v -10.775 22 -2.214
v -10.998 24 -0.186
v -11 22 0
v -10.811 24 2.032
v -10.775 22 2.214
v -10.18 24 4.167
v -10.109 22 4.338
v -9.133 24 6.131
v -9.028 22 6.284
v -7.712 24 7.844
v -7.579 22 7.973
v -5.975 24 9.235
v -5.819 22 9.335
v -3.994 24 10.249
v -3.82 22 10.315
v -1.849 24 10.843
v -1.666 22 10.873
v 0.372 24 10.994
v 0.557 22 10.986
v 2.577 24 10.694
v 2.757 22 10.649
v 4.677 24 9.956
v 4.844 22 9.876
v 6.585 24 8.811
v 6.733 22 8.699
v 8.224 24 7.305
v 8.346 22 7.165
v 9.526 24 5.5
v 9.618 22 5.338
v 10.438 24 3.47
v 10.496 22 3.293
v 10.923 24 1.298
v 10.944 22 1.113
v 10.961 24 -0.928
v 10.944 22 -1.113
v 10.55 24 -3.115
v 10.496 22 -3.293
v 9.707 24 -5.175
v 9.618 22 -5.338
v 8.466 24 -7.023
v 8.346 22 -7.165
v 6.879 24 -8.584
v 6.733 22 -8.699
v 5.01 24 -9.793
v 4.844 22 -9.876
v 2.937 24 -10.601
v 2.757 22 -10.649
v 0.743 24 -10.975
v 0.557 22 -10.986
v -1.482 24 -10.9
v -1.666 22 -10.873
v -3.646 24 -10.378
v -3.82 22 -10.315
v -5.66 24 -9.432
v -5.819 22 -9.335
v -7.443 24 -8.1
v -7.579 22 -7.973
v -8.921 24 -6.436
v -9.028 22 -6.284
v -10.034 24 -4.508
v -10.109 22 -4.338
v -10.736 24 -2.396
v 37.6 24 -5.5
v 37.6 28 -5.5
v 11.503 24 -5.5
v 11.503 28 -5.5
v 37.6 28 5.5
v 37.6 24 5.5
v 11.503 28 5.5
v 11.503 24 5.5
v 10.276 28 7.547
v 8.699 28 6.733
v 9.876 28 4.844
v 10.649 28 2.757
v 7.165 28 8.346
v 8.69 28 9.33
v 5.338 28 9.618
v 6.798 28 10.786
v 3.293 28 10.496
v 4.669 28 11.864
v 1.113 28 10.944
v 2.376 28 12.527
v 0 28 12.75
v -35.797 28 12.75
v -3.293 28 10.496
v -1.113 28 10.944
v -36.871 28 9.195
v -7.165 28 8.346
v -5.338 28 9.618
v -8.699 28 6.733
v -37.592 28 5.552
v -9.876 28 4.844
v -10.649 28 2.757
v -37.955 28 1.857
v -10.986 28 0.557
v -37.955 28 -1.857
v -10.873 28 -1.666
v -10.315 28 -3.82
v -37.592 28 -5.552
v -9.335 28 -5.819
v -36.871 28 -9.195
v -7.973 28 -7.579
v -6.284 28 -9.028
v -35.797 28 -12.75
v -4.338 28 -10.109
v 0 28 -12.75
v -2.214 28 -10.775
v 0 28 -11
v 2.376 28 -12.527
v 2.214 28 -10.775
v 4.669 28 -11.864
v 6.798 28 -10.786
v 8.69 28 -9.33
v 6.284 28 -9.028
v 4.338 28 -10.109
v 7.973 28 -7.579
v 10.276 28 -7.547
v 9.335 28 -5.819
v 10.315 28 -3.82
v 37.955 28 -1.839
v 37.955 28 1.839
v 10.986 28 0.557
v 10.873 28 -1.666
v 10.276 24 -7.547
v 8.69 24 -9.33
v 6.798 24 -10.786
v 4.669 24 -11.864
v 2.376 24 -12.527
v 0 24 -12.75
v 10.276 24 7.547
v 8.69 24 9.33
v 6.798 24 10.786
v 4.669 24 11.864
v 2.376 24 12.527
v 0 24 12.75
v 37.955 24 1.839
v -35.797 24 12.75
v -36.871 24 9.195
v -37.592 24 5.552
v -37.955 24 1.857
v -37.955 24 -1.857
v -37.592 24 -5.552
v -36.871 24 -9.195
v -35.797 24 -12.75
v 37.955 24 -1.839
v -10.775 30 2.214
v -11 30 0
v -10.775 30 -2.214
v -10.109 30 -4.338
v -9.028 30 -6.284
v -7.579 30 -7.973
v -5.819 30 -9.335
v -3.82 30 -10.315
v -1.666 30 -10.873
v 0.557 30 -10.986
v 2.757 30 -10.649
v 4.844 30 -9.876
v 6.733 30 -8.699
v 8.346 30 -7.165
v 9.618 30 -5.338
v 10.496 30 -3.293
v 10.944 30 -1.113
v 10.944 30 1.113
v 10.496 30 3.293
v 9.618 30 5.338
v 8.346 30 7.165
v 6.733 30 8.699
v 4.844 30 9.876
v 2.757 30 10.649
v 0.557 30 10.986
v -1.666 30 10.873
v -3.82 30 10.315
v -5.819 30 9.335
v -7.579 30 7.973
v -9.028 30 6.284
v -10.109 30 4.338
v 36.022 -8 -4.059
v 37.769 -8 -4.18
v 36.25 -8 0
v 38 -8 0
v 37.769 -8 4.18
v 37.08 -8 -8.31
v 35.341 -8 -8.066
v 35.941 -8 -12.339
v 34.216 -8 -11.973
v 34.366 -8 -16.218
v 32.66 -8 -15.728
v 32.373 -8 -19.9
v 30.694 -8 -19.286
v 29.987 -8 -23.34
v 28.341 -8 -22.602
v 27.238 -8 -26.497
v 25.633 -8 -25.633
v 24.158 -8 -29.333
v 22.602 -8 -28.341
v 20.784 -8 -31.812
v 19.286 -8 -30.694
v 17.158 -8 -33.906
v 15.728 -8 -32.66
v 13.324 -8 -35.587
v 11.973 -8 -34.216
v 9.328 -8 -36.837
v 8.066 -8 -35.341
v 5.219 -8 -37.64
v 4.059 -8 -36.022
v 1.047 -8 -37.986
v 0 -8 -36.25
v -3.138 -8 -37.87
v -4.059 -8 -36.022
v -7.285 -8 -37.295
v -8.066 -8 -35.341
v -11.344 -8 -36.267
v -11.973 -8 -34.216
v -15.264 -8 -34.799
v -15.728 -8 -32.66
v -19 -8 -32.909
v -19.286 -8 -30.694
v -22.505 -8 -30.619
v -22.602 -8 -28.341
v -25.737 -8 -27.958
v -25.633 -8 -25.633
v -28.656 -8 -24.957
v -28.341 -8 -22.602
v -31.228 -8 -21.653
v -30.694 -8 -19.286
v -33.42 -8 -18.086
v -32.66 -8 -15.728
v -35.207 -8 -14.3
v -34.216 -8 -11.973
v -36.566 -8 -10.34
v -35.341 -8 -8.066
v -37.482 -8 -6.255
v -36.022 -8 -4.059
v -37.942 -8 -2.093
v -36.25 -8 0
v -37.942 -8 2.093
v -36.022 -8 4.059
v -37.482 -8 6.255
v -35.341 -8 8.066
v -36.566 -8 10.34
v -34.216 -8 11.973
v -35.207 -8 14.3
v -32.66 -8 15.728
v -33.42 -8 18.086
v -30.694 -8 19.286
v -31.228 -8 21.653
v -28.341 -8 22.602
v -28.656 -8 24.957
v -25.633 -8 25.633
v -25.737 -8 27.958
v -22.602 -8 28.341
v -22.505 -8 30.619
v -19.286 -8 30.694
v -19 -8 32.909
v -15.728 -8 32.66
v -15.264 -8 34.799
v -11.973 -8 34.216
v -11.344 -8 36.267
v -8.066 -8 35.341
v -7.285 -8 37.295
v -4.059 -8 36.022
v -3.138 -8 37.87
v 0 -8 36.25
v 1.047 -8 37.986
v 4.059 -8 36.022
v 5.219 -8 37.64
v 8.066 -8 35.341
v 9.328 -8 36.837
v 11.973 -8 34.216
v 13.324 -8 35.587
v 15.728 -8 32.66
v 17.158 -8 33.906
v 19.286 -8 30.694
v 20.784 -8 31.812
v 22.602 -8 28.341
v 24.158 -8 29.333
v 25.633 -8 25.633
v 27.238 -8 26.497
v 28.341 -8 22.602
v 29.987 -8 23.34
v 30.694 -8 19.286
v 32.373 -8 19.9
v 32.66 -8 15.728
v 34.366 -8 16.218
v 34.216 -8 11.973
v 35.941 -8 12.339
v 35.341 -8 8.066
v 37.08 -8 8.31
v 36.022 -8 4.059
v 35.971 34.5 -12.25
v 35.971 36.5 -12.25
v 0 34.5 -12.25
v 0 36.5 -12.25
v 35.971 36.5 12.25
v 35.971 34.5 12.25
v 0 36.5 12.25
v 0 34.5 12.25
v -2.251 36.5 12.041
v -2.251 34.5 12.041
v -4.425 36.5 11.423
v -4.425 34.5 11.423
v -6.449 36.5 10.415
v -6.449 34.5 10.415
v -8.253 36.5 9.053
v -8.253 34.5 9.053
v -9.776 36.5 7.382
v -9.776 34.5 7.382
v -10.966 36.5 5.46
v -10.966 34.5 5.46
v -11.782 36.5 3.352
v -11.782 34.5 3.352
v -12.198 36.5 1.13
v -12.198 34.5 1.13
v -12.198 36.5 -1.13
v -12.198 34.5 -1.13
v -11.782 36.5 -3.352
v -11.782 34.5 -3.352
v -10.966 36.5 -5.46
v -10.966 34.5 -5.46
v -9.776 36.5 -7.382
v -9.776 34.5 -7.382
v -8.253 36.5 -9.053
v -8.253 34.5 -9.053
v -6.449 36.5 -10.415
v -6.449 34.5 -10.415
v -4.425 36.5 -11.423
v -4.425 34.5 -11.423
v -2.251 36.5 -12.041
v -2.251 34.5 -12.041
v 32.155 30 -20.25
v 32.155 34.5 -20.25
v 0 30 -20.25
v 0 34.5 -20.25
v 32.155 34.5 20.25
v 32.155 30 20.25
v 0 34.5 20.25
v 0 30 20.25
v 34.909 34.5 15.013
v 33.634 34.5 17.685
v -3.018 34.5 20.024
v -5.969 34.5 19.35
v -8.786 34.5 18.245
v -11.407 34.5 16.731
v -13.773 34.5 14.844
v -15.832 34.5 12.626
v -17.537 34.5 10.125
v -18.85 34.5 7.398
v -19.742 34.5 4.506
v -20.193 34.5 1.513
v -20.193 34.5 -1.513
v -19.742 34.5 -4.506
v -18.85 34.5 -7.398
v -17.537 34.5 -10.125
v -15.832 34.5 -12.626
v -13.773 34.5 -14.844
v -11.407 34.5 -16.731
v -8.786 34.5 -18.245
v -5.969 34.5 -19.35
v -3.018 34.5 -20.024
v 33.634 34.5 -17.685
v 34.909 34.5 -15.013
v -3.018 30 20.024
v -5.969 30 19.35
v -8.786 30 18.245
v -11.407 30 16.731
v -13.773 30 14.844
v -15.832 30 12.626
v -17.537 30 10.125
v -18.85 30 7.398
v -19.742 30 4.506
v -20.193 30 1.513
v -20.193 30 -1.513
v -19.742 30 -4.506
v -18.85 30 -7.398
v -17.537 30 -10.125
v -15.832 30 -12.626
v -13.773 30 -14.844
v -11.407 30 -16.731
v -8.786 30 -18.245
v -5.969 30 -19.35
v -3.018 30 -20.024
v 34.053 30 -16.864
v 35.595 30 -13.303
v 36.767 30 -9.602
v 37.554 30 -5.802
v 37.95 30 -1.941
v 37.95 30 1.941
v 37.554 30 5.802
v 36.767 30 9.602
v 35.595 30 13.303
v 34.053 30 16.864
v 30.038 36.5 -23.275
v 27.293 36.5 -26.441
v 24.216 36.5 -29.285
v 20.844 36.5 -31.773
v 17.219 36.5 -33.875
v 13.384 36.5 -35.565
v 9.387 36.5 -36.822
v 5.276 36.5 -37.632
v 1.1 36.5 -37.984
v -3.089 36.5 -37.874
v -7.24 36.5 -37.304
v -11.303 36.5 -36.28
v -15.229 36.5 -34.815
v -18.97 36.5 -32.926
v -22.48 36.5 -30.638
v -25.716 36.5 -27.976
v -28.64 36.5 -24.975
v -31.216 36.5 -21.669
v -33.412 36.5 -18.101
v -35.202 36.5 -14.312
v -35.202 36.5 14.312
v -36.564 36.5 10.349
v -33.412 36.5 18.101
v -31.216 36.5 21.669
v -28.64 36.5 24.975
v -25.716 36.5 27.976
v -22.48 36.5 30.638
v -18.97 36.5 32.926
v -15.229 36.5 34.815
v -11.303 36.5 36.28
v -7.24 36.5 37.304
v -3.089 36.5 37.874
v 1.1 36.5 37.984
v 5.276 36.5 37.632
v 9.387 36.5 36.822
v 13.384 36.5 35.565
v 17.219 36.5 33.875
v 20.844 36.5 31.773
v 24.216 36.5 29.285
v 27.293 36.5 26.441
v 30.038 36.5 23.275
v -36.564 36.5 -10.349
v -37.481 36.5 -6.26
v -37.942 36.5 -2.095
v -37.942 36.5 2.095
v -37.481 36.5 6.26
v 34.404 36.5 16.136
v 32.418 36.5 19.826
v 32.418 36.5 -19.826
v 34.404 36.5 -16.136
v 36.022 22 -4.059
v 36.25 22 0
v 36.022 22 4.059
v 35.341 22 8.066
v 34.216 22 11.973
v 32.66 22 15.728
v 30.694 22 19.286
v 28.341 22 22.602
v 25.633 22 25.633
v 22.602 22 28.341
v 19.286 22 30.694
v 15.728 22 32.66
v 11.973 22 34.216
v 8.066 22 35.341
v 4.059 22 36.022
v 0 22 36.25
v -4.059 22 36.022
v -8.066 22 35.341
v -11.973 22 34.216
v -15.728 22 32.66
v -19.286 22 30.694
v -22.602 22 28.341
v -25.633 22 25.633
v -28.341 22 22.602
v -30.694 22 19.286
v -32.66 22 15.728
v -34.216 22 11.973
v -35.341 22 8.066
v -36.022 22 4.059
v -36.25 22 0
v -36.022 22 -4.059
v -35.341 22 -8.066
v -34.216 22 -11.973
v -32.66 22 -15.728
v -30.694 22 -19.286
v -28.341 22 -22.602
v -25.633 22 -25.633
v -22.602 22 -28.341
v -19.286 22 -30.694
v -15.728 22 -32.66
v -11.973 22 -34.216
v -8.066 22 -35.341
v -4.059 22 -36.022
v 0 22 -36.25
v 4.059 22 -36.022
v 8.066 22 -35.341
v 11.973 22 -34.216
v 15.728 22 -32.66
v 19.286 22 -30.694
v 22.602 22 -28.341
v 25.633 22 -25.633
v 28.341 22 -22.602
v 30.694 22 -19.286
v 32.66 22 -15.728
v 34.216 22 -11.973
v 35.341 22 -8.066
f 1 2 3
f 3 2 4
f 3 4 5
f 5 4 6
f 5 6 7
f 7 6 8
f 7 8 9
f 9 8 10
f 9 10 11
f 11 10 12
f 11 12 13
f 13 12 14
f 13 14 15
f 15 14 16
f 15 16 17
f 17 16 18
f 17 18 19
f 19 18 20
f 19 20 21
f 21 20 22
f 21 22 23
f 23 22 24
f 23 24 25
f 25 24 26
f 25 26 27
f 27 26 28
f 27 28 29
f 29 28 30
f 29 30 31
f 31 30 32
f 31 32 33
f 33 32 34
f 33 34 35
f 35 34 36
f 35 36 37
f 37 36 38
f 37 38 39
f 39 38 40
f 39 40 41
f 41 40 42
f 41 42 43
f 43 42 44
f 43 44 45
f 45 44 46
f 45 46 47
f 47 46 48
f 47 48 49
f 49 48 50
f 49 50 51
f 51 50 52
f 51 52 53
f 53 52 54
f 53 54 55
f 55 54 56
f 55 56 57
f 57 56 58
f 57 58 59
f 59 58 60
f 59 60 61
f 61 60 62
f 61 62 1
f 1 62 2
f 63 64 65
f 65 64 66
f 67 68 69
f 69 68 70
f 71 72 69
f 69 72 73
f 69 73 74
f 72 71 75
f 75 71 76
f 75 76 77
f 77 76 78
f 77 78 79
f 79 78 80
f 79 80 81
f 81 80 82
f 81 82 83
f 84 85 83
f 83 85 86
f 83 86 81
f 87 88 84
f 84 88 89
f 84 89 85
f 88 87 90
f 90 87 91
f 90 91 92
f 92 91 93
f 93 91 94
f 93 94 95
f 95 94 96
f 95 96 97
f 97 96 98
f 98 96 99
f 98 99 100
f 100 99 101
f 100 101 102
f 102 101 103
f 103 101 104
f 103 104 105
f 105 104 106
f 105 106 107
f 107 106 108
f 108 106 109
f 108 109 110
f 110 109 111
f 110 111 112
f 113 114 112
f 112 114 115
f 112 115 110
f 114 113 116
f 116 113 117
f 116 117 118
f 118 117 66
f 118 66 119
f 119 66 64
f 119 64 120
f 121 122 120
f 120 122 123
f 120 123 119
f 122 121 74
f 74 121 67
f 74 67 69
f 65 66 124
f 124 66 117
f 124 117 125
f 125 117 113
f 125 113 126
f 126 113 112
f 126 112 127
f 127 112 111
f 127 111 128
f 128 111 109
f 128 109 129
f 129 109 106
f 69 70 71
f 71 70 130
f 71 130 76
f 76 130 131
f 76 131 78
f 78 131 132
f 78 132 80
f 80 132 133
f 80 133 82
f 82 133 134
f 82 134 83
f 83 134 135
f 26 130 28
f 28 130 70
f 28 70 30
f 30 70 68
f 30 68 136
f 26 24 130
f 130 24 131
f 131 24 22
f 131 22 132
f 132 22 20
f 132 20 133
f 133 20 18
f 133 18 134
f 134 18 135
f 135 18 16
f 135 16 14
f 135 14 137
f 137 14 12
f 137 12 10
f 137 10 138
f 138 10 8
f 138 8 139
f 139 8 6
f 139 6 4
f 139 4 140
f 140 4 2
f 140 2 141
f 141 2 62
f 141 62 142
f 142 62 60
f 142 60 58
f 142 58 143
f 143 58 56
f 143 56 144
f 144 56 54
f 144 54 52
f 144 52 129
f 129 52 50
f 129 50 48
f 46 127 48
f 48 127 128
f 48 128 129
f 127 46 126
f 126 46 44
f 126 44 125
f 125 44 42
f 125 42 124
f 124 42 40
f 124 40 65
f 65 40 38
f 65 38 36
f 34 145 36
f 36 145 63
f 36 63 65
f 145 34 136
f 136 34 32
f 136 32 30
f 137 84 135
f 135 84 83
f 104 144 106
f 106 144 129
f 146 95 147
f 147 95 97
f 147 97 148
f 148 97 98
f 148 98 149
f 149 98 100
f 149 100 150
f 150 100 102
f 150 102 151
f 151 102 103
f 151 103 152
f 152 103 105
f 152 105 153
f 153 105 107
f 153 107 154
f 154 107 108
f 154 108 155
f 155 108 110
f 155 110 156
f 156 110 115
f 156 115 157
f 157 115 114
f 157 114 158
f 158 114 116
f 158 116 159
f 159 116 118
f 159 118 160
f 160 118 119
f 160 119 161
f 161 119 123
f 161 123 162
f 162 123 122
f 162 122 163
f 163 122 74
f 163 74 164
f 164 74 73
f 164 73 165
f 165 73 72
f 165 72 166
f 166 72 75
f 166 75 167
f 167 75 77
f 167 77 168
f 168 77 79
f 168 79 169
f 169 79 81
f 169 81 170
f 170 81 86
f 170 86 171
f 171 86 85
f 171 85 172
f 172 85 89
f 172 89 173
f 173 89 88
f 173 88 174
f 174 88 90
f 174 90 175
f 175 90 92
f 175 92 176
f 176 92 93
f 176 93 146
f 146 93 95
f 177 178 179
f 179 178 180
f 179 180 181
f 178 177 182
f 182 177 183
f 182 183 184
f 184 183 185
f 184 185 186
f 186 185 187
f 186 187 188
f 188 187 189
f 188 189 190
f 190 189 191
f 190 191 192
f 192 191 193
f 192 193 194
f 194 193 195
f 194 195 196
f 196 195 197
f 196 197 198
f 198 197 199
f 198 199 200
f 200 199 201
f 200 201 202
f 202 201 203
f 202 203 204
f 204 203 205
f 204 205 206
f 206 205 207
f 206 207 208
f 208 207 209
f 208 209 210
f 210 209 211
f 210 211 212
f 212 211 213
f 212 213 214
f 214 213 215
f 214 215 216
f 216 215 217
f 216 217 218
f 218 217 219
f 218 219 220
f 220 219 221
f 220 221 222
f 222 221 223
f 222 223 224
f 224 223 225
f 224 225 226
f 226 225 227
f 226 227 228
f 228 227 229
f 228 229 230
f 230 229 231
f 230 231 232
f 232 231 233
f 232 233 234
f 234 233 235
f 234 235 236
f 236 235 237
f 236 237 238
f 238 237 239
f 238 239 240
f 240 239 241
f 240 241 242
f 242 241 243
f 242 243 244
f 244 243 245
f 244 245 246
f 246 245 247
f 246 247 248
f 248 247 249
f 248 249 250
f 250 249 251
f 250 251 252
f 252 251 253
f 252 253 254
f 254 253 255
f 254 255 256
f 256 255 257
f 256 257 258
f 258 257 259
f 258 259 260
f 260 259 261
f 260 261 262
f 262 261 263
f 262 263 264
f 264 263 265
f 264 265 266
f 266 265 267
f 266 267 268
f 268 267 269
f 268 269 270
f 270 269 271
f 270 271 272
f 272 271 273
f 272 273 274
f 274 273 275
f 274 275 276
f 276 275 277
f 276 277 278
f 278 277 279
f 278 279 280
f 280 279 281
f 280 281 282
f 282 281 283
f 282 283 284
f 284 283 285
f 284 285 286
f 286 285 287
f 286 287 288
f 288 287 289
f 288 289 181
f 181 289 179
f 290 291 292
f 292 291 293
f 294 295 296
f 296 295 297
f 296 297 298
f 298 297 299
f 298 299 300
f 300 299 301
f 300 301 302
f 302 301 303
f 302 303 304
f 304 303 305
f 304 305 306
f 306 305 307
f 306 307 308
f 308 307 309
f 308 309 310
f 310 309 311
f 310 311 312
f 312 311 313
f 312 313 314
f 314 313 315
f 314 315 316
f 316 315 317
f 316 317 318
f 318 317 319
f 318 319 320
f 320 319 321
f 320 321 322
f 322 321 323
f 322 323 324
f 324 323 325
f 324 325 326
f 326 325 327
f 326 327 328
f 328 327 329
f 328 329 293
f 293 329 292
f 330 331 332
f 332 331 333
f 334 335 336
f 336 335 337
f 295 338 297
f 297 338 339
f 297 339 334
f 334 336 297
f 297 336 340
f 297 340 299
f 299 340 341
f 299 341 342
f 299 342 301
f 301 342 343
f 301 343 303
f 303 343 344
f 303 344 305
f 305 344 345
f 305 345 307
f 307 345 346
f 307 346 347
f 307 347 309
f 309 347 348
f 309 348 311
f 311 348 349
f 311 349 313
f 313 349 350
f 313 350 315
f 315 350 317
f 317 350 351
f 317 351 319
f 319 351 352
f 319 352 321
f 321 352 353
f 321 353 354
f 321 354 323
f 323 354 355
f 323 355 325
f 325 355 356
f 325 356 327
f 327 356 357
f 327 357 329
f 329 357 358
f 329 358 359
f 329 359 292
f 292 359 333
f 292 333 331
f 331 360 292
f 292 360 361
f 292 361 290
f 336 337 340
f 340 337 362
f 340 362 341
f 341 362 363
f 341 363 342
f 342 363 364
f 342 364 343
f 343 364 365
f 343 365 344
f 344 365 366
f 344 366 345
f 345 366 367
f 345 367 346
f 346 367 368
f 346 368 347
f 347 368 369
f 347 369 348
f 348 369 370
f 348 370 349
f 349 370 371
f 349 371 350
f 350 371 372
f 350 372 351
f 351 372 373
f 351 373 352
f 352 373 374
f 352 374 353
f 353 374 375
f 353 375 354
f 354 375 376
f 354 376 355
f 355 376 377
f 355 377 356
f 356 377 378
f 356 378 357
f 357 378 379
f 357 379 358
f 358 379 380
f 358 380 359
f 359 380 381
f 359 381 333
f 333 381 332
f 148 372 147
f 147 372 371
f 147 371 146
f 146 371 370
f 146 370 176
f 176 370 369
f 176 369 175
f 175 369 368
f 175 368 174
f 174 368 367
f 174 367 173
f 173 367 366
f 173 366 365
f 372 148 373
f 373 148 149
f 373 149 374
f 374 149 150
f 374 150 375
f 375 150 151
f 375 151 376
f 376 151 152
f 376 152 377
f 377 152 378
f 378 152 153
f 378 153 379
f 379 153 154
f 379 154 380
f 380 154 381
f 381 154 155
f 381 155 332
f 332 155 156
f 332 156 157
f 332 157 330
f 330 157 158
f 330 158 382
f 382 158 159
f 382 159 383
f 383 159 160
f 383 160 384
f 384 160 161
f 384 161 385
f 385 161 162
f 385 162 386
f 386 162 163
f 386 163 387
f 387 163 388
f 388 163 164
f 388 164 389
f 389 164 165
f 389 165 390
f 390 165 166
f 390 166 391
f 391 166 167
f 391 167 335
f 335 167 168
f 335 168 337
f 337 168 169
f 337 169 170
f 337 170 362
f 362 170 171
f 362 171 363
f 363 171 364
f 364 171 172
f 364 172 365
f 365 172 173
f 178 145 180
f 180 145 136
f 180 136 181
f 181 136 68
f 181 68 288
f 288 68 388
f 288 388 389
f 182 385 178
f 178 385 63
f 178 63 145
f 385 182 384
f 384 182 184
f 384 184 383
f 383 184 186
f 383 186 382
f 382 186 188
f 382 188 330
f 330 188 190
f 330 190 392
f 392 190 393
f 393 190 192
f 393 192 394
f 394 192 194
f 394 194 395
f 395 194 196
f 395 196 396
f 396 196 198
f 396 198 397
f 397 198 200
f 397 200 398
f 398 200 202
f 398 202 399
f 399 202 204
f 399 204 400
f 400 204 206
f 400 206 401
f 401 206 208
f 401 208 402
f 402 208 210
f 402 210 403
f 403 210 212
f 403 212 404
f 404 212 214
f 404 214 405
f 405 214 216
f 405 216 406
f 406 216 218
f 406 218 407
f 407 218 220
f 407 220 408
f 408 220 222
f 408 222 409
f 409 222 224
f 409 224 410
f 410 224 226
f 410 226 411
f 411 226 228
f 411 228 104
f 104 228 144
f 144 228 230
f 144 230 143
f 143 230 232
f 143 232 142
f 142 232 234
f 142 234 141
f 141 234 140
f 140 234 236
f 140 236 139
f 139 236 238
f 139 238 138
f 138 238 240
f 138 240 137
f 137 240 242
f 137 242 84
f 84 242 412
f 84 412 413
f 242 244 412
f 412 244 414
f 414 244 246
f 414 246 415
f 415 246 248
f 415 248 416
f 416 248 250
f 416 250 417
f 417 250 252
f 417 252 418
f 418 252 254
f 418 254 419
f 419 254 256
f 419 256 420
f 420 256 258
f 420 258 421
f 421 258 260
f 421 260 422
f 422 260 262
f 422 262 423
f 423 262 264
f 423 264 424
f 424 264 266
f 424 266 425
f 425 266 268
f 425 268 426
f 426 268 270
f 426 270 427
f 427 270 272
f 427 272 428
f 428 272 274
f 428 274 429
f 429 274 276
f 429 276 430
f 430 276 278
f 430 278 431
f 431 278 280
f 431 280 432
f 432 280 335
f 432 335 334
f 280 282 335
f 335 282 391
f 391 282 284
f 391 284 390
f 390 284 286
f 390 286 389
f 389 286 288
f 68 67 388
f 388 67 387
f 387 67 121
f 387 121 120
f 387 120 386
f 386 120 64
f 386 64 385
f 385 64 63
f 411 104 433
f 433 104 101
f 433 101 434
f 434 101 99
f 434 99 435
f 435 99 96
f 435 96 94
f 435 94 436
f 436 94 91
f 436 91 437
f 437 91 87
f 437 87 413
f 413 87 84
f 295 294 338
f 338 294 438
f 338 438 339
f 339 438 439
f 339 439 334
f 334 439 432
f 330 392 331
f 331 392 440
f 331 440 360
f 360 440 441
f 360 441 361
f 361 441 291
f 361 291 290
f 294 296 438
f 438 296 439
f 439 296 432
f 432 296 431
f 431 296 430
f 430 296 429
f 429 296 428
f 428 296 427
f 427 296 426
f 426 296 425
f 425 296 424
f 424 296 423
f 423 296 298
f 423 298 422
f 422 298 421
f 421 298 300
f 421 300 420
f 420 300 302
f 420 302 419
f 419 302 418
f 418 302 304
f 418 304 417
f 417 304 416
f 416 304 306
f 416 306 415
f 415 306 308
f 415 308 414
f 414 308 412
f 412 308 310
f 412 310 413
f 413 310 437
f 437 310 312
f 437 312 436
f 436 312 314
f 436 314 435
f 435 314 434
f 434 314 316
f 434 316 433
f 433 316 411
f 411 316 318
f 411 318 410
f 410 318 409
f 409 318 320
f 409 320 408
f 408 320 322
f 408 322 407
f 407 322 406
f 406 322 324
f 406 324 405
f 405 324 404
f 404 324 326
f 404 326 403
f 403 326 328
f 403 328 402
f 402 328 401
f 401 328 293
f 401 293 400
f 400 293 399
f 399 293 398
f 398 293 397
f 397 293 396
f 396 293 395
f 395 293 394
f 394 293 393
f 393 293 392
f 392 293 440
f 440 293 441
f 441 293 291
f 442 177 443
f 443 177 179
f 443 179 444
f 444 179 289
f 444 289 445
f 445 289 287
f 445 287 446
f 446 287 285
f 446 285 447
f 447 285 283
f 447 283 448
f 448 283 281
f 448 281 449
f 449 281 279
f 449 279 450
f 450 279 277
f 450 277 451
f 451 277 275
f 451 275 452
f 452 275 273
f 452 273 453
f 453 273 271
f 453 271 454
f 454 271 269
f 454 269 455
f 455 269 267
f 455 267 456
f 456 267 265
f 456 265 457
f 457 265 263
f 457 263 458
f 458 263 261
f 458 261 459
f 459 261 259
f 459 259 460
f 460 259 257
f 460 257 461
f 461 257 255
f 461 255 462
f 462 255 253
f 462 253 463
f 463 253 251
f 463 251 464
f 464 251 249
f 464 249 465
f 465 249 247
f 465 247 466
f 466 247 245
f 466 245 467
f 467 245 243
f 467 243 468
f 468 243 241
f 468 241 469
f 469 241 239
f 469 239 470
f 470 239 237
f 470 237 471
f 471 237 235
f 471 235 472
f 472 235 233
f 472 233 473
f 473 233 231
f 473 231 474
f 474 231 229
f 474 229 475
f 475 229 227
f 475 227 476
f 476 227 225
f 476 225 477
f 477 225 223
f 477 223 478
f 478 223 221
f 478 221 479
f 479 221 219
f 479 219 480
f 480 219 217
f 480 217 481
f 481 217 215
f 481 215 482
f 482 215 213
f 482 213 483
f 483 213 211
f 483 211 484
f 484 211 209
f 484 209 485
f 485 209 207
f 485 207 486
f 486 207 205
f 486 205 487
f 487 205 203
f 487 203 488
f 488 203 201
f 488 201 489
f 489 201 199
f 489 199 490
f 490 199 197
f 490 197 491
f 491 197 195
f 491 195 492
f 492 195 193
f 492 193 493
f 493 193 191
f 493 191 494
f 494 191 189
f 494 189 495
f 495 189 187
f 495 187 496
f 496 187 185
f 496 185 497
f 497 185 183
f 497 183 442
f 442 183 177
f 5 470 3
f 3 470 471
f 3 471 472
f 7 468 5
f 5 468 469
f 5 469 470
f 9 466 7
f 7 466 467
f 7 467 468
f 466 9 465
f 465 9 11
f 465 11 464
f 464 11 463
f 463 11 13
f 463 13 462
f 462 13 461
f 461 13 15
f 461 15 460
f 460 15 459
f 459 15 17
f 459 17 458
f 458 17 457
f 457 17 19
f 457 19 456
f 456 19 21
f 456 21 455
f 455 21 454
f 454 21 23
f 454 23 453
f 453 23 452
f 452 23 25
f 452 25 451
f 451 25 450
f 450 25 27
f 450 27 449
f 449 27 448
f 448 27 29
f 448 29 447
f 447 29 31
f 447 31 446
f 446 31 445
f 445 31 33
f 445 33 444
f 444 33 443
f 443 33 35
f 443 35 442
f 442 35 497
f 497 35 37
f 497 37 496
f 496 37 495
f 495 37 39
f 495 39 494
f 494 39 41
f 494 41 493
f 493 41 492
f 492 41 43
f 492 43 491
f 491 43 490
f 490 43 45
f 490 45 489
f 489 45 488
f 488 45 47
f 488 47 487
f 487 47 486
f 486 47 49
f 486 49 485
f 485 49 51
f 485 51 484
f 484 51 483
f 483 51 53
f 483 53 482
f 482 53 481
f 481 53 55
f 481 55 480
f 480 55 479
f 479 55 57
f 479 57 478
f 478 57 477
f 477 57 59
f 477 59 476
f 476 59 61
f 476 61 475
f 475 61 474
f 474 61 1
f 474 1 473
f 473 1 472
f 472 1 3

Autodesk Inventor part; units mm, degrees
ref_plane "YZ Plane" through (0, 0, 0) normal (1, 0, 0) x (0, 1, 0)
ref_plane "XZ Plane" through (0, 0, 0) normal (0, 1, 0) x (-1, 0, 0)
ref_plane "XY Plane" through (0, 0, 0) normal (0, 0, 1) x (1, 0, 0)
sketch "スケッチ1" plane through (0, 0, 0) normal (0, 1, 0) x (-1, 0, 0)
  circle A0 centre (0, 0) radius 38
  dimension "d0" = 76
extrude "押し出し1" add sketch "スケッチ1" along normal blind 36.5
sketch "スケッチ3" plane through (0, 36.5, 0) normal (0, 1, 0) x (1, 0, 0)
  circle A0 centre (0, 0) radius 20.25
  dimension "d6" = 40.5
extrude "押し出し3" cut sketch "スケッチ3" against normal blind 6.5
sketch "スケッチ4" plane through (0, 36.5, 0) normal (0, 1, 0) x (1, 0, 0)
  circle A0 centre (0, 0) radius 20.25
extrude "押し出し4" add sketch "スケッチ4" against normal blind 2
sketch "スケッチ6" plane through (0, 0, 0) normal (0, -1, 0) x (1, 0, 0)
  circle A0 centre (0, 0) radius 12.25
  dimension "d13" = 24.5
extrude "押し出し5" cut sketch "スケッチ6" against normal through all
sketch "スケッチ7" plane through (0, 0, 0) normal (1, 0, 0) x (0, 1, 0)
  line L0 (34.5, -20.25) -> (34.5, 20.25) projected
  line L1 (30, 20.25) -> (30, -20.25) projected
  line L2 (34.5, 20.25) -> (30, 20.25)
  line L3 (30, 20.25) -> (30, -20.25)
  line L4 (30, -20.25) -> (34.5, -20.25)
  line L5 (34.5, -20.25) -> (34.5, 20.25)
  point P0 (0, 0)
extrude "押し出し6" cut sketch "スケッチ7" along normal through all
sketch "スケッチ8" plane through (0, 0, 0) normal (1, 0, 0) x (0, 1, 0)
  line L0 (36.5, 12.25) -> (36.5, -12.25) projected
  line L1 (34.5, -12.25) -> (34.5, 12.25) projected
  line L2 (36.5, 12.25) -> (34.5, 12.25)
  line L3 (34.5, 12.25) -> (34.5, -12.25)
  line L4 (34.5, -12.25) -> (36.5, -12.25)
  line L5 (36.5, -12.25) -> (36.5, 12.25)
  point P0 (0, 0)
extrude "押し出し7" cut sketch "スケッチ8" along normal through all
sketch "スケッチ10" plane through (0, 0, 0) normal (0, -1, 0) x (1, 0, 0)
  circle A0 centre (0, 0) radius 12.25
extrude "押し出し9" add sketch "スケッチ10" against normal blind 30
sketch "スケッチ11" plane through (0, 0, 0) normal (0, -1, 0) x (1, 0, 0)
  circle A0 centre (0, 0) radius 11
  dimension "d25" = 22
extrude "押し出し10" cut sketch "スケッチ11" against normal through all
sketch "スケッチ13" plane through (0, 0, 0) normal (0, 0, 1) x (1, 0, 0)
  line L0 (-11, 30) -> (11, 30) projected
  line L1 (0, 30) -> (0, 28) construction
  line L2 (0, 28) -> (-12.75, 28)
  line L3 (-12.75, 28) -> (-12.75, 24)
  line L4 (-12.75, 24) -> (0, 24)
  line L5 (0, 24) -> (0, 28)
  line L6 (0, -7.3) -> (0, 43.8) projected
  point P0 (0, 0)
  dimension "d29" = 2
  dimension "d30" = 12.75
  dimension "d31" = 4
revolve "回転2" cut sketch "スケッチ13" angle 360 about axis through (0, -10, 0) along (0, -1, 0)
sketch "スケッチ14" plane through (0, 0, 0) normal (1, 0, 0) x (0, 1, 0)
  line L0 (28, 12.75) -> (24, 12.75) projected
  line L1 (28, -12.75) -> (24, -12.75) projected
  line L2 (24, 12.75) -> (28, 12.75)
  line L3 (28, 12.75) -> (28, -12.75)
  line L4 (28, -12.75) -> (24, -12.75)
  line L5 (24, -12.75) -> (24, 12.75)
  point P0 (0, 0)
extrude "押し出し11" cut sketch "スケッチ14" against normal through all
sketch "スケッチ15" plane through (0, 0, 0) normal (1, 0, 0) x (0, 1, 0)
  line L0 (24, 0) -> (24, -5.5)
  line L1 (24, -5.5) -> (28, -5.5)
  line L2 (28, -5.5) -> (28, 0)
  line L3 (24, 0) -> (24, 5.5)
  line L4 (24, 5.5) -> (28, 5.5)
  line L5 (28, 5.5) -> (28, 0)
  point P0 (0, 0)
  dimension "d35" = 4
  dimension "d36" = 5.5
extrude "押し出し12" cut sketch "スケッチ15" along normal through all
sketch "スケッチ16" plane through (0, 0, 0) normal (0, -1, 0) x (1, 0, 0)
  circle A0 centre (0, 0) radius 38
extrude "押し出し13" add sketch "スケッチ16" along normal blind 8
sketch "スケッチ17" plane through (0, -8, 0) normal (0, -1, 0) x (1, 0, 0)
  circle A0 centre (0, 0) radius 11
extrude "押し出し14" cut sketch "スケッチ17" against normal through all
sketch "スケッチ19" plane through (0, -8, 0) normal (0, -1, 0) x (1, 0, 0)
  circle A0 centre (0, 0) radius 36.25
  dimension "d44" = 72.5
extrude "押し出し15" cut sketch "スケッチ19" against normal blind 30
properties part number "lens-holder_LIBS" material "ABS プラスチック"
